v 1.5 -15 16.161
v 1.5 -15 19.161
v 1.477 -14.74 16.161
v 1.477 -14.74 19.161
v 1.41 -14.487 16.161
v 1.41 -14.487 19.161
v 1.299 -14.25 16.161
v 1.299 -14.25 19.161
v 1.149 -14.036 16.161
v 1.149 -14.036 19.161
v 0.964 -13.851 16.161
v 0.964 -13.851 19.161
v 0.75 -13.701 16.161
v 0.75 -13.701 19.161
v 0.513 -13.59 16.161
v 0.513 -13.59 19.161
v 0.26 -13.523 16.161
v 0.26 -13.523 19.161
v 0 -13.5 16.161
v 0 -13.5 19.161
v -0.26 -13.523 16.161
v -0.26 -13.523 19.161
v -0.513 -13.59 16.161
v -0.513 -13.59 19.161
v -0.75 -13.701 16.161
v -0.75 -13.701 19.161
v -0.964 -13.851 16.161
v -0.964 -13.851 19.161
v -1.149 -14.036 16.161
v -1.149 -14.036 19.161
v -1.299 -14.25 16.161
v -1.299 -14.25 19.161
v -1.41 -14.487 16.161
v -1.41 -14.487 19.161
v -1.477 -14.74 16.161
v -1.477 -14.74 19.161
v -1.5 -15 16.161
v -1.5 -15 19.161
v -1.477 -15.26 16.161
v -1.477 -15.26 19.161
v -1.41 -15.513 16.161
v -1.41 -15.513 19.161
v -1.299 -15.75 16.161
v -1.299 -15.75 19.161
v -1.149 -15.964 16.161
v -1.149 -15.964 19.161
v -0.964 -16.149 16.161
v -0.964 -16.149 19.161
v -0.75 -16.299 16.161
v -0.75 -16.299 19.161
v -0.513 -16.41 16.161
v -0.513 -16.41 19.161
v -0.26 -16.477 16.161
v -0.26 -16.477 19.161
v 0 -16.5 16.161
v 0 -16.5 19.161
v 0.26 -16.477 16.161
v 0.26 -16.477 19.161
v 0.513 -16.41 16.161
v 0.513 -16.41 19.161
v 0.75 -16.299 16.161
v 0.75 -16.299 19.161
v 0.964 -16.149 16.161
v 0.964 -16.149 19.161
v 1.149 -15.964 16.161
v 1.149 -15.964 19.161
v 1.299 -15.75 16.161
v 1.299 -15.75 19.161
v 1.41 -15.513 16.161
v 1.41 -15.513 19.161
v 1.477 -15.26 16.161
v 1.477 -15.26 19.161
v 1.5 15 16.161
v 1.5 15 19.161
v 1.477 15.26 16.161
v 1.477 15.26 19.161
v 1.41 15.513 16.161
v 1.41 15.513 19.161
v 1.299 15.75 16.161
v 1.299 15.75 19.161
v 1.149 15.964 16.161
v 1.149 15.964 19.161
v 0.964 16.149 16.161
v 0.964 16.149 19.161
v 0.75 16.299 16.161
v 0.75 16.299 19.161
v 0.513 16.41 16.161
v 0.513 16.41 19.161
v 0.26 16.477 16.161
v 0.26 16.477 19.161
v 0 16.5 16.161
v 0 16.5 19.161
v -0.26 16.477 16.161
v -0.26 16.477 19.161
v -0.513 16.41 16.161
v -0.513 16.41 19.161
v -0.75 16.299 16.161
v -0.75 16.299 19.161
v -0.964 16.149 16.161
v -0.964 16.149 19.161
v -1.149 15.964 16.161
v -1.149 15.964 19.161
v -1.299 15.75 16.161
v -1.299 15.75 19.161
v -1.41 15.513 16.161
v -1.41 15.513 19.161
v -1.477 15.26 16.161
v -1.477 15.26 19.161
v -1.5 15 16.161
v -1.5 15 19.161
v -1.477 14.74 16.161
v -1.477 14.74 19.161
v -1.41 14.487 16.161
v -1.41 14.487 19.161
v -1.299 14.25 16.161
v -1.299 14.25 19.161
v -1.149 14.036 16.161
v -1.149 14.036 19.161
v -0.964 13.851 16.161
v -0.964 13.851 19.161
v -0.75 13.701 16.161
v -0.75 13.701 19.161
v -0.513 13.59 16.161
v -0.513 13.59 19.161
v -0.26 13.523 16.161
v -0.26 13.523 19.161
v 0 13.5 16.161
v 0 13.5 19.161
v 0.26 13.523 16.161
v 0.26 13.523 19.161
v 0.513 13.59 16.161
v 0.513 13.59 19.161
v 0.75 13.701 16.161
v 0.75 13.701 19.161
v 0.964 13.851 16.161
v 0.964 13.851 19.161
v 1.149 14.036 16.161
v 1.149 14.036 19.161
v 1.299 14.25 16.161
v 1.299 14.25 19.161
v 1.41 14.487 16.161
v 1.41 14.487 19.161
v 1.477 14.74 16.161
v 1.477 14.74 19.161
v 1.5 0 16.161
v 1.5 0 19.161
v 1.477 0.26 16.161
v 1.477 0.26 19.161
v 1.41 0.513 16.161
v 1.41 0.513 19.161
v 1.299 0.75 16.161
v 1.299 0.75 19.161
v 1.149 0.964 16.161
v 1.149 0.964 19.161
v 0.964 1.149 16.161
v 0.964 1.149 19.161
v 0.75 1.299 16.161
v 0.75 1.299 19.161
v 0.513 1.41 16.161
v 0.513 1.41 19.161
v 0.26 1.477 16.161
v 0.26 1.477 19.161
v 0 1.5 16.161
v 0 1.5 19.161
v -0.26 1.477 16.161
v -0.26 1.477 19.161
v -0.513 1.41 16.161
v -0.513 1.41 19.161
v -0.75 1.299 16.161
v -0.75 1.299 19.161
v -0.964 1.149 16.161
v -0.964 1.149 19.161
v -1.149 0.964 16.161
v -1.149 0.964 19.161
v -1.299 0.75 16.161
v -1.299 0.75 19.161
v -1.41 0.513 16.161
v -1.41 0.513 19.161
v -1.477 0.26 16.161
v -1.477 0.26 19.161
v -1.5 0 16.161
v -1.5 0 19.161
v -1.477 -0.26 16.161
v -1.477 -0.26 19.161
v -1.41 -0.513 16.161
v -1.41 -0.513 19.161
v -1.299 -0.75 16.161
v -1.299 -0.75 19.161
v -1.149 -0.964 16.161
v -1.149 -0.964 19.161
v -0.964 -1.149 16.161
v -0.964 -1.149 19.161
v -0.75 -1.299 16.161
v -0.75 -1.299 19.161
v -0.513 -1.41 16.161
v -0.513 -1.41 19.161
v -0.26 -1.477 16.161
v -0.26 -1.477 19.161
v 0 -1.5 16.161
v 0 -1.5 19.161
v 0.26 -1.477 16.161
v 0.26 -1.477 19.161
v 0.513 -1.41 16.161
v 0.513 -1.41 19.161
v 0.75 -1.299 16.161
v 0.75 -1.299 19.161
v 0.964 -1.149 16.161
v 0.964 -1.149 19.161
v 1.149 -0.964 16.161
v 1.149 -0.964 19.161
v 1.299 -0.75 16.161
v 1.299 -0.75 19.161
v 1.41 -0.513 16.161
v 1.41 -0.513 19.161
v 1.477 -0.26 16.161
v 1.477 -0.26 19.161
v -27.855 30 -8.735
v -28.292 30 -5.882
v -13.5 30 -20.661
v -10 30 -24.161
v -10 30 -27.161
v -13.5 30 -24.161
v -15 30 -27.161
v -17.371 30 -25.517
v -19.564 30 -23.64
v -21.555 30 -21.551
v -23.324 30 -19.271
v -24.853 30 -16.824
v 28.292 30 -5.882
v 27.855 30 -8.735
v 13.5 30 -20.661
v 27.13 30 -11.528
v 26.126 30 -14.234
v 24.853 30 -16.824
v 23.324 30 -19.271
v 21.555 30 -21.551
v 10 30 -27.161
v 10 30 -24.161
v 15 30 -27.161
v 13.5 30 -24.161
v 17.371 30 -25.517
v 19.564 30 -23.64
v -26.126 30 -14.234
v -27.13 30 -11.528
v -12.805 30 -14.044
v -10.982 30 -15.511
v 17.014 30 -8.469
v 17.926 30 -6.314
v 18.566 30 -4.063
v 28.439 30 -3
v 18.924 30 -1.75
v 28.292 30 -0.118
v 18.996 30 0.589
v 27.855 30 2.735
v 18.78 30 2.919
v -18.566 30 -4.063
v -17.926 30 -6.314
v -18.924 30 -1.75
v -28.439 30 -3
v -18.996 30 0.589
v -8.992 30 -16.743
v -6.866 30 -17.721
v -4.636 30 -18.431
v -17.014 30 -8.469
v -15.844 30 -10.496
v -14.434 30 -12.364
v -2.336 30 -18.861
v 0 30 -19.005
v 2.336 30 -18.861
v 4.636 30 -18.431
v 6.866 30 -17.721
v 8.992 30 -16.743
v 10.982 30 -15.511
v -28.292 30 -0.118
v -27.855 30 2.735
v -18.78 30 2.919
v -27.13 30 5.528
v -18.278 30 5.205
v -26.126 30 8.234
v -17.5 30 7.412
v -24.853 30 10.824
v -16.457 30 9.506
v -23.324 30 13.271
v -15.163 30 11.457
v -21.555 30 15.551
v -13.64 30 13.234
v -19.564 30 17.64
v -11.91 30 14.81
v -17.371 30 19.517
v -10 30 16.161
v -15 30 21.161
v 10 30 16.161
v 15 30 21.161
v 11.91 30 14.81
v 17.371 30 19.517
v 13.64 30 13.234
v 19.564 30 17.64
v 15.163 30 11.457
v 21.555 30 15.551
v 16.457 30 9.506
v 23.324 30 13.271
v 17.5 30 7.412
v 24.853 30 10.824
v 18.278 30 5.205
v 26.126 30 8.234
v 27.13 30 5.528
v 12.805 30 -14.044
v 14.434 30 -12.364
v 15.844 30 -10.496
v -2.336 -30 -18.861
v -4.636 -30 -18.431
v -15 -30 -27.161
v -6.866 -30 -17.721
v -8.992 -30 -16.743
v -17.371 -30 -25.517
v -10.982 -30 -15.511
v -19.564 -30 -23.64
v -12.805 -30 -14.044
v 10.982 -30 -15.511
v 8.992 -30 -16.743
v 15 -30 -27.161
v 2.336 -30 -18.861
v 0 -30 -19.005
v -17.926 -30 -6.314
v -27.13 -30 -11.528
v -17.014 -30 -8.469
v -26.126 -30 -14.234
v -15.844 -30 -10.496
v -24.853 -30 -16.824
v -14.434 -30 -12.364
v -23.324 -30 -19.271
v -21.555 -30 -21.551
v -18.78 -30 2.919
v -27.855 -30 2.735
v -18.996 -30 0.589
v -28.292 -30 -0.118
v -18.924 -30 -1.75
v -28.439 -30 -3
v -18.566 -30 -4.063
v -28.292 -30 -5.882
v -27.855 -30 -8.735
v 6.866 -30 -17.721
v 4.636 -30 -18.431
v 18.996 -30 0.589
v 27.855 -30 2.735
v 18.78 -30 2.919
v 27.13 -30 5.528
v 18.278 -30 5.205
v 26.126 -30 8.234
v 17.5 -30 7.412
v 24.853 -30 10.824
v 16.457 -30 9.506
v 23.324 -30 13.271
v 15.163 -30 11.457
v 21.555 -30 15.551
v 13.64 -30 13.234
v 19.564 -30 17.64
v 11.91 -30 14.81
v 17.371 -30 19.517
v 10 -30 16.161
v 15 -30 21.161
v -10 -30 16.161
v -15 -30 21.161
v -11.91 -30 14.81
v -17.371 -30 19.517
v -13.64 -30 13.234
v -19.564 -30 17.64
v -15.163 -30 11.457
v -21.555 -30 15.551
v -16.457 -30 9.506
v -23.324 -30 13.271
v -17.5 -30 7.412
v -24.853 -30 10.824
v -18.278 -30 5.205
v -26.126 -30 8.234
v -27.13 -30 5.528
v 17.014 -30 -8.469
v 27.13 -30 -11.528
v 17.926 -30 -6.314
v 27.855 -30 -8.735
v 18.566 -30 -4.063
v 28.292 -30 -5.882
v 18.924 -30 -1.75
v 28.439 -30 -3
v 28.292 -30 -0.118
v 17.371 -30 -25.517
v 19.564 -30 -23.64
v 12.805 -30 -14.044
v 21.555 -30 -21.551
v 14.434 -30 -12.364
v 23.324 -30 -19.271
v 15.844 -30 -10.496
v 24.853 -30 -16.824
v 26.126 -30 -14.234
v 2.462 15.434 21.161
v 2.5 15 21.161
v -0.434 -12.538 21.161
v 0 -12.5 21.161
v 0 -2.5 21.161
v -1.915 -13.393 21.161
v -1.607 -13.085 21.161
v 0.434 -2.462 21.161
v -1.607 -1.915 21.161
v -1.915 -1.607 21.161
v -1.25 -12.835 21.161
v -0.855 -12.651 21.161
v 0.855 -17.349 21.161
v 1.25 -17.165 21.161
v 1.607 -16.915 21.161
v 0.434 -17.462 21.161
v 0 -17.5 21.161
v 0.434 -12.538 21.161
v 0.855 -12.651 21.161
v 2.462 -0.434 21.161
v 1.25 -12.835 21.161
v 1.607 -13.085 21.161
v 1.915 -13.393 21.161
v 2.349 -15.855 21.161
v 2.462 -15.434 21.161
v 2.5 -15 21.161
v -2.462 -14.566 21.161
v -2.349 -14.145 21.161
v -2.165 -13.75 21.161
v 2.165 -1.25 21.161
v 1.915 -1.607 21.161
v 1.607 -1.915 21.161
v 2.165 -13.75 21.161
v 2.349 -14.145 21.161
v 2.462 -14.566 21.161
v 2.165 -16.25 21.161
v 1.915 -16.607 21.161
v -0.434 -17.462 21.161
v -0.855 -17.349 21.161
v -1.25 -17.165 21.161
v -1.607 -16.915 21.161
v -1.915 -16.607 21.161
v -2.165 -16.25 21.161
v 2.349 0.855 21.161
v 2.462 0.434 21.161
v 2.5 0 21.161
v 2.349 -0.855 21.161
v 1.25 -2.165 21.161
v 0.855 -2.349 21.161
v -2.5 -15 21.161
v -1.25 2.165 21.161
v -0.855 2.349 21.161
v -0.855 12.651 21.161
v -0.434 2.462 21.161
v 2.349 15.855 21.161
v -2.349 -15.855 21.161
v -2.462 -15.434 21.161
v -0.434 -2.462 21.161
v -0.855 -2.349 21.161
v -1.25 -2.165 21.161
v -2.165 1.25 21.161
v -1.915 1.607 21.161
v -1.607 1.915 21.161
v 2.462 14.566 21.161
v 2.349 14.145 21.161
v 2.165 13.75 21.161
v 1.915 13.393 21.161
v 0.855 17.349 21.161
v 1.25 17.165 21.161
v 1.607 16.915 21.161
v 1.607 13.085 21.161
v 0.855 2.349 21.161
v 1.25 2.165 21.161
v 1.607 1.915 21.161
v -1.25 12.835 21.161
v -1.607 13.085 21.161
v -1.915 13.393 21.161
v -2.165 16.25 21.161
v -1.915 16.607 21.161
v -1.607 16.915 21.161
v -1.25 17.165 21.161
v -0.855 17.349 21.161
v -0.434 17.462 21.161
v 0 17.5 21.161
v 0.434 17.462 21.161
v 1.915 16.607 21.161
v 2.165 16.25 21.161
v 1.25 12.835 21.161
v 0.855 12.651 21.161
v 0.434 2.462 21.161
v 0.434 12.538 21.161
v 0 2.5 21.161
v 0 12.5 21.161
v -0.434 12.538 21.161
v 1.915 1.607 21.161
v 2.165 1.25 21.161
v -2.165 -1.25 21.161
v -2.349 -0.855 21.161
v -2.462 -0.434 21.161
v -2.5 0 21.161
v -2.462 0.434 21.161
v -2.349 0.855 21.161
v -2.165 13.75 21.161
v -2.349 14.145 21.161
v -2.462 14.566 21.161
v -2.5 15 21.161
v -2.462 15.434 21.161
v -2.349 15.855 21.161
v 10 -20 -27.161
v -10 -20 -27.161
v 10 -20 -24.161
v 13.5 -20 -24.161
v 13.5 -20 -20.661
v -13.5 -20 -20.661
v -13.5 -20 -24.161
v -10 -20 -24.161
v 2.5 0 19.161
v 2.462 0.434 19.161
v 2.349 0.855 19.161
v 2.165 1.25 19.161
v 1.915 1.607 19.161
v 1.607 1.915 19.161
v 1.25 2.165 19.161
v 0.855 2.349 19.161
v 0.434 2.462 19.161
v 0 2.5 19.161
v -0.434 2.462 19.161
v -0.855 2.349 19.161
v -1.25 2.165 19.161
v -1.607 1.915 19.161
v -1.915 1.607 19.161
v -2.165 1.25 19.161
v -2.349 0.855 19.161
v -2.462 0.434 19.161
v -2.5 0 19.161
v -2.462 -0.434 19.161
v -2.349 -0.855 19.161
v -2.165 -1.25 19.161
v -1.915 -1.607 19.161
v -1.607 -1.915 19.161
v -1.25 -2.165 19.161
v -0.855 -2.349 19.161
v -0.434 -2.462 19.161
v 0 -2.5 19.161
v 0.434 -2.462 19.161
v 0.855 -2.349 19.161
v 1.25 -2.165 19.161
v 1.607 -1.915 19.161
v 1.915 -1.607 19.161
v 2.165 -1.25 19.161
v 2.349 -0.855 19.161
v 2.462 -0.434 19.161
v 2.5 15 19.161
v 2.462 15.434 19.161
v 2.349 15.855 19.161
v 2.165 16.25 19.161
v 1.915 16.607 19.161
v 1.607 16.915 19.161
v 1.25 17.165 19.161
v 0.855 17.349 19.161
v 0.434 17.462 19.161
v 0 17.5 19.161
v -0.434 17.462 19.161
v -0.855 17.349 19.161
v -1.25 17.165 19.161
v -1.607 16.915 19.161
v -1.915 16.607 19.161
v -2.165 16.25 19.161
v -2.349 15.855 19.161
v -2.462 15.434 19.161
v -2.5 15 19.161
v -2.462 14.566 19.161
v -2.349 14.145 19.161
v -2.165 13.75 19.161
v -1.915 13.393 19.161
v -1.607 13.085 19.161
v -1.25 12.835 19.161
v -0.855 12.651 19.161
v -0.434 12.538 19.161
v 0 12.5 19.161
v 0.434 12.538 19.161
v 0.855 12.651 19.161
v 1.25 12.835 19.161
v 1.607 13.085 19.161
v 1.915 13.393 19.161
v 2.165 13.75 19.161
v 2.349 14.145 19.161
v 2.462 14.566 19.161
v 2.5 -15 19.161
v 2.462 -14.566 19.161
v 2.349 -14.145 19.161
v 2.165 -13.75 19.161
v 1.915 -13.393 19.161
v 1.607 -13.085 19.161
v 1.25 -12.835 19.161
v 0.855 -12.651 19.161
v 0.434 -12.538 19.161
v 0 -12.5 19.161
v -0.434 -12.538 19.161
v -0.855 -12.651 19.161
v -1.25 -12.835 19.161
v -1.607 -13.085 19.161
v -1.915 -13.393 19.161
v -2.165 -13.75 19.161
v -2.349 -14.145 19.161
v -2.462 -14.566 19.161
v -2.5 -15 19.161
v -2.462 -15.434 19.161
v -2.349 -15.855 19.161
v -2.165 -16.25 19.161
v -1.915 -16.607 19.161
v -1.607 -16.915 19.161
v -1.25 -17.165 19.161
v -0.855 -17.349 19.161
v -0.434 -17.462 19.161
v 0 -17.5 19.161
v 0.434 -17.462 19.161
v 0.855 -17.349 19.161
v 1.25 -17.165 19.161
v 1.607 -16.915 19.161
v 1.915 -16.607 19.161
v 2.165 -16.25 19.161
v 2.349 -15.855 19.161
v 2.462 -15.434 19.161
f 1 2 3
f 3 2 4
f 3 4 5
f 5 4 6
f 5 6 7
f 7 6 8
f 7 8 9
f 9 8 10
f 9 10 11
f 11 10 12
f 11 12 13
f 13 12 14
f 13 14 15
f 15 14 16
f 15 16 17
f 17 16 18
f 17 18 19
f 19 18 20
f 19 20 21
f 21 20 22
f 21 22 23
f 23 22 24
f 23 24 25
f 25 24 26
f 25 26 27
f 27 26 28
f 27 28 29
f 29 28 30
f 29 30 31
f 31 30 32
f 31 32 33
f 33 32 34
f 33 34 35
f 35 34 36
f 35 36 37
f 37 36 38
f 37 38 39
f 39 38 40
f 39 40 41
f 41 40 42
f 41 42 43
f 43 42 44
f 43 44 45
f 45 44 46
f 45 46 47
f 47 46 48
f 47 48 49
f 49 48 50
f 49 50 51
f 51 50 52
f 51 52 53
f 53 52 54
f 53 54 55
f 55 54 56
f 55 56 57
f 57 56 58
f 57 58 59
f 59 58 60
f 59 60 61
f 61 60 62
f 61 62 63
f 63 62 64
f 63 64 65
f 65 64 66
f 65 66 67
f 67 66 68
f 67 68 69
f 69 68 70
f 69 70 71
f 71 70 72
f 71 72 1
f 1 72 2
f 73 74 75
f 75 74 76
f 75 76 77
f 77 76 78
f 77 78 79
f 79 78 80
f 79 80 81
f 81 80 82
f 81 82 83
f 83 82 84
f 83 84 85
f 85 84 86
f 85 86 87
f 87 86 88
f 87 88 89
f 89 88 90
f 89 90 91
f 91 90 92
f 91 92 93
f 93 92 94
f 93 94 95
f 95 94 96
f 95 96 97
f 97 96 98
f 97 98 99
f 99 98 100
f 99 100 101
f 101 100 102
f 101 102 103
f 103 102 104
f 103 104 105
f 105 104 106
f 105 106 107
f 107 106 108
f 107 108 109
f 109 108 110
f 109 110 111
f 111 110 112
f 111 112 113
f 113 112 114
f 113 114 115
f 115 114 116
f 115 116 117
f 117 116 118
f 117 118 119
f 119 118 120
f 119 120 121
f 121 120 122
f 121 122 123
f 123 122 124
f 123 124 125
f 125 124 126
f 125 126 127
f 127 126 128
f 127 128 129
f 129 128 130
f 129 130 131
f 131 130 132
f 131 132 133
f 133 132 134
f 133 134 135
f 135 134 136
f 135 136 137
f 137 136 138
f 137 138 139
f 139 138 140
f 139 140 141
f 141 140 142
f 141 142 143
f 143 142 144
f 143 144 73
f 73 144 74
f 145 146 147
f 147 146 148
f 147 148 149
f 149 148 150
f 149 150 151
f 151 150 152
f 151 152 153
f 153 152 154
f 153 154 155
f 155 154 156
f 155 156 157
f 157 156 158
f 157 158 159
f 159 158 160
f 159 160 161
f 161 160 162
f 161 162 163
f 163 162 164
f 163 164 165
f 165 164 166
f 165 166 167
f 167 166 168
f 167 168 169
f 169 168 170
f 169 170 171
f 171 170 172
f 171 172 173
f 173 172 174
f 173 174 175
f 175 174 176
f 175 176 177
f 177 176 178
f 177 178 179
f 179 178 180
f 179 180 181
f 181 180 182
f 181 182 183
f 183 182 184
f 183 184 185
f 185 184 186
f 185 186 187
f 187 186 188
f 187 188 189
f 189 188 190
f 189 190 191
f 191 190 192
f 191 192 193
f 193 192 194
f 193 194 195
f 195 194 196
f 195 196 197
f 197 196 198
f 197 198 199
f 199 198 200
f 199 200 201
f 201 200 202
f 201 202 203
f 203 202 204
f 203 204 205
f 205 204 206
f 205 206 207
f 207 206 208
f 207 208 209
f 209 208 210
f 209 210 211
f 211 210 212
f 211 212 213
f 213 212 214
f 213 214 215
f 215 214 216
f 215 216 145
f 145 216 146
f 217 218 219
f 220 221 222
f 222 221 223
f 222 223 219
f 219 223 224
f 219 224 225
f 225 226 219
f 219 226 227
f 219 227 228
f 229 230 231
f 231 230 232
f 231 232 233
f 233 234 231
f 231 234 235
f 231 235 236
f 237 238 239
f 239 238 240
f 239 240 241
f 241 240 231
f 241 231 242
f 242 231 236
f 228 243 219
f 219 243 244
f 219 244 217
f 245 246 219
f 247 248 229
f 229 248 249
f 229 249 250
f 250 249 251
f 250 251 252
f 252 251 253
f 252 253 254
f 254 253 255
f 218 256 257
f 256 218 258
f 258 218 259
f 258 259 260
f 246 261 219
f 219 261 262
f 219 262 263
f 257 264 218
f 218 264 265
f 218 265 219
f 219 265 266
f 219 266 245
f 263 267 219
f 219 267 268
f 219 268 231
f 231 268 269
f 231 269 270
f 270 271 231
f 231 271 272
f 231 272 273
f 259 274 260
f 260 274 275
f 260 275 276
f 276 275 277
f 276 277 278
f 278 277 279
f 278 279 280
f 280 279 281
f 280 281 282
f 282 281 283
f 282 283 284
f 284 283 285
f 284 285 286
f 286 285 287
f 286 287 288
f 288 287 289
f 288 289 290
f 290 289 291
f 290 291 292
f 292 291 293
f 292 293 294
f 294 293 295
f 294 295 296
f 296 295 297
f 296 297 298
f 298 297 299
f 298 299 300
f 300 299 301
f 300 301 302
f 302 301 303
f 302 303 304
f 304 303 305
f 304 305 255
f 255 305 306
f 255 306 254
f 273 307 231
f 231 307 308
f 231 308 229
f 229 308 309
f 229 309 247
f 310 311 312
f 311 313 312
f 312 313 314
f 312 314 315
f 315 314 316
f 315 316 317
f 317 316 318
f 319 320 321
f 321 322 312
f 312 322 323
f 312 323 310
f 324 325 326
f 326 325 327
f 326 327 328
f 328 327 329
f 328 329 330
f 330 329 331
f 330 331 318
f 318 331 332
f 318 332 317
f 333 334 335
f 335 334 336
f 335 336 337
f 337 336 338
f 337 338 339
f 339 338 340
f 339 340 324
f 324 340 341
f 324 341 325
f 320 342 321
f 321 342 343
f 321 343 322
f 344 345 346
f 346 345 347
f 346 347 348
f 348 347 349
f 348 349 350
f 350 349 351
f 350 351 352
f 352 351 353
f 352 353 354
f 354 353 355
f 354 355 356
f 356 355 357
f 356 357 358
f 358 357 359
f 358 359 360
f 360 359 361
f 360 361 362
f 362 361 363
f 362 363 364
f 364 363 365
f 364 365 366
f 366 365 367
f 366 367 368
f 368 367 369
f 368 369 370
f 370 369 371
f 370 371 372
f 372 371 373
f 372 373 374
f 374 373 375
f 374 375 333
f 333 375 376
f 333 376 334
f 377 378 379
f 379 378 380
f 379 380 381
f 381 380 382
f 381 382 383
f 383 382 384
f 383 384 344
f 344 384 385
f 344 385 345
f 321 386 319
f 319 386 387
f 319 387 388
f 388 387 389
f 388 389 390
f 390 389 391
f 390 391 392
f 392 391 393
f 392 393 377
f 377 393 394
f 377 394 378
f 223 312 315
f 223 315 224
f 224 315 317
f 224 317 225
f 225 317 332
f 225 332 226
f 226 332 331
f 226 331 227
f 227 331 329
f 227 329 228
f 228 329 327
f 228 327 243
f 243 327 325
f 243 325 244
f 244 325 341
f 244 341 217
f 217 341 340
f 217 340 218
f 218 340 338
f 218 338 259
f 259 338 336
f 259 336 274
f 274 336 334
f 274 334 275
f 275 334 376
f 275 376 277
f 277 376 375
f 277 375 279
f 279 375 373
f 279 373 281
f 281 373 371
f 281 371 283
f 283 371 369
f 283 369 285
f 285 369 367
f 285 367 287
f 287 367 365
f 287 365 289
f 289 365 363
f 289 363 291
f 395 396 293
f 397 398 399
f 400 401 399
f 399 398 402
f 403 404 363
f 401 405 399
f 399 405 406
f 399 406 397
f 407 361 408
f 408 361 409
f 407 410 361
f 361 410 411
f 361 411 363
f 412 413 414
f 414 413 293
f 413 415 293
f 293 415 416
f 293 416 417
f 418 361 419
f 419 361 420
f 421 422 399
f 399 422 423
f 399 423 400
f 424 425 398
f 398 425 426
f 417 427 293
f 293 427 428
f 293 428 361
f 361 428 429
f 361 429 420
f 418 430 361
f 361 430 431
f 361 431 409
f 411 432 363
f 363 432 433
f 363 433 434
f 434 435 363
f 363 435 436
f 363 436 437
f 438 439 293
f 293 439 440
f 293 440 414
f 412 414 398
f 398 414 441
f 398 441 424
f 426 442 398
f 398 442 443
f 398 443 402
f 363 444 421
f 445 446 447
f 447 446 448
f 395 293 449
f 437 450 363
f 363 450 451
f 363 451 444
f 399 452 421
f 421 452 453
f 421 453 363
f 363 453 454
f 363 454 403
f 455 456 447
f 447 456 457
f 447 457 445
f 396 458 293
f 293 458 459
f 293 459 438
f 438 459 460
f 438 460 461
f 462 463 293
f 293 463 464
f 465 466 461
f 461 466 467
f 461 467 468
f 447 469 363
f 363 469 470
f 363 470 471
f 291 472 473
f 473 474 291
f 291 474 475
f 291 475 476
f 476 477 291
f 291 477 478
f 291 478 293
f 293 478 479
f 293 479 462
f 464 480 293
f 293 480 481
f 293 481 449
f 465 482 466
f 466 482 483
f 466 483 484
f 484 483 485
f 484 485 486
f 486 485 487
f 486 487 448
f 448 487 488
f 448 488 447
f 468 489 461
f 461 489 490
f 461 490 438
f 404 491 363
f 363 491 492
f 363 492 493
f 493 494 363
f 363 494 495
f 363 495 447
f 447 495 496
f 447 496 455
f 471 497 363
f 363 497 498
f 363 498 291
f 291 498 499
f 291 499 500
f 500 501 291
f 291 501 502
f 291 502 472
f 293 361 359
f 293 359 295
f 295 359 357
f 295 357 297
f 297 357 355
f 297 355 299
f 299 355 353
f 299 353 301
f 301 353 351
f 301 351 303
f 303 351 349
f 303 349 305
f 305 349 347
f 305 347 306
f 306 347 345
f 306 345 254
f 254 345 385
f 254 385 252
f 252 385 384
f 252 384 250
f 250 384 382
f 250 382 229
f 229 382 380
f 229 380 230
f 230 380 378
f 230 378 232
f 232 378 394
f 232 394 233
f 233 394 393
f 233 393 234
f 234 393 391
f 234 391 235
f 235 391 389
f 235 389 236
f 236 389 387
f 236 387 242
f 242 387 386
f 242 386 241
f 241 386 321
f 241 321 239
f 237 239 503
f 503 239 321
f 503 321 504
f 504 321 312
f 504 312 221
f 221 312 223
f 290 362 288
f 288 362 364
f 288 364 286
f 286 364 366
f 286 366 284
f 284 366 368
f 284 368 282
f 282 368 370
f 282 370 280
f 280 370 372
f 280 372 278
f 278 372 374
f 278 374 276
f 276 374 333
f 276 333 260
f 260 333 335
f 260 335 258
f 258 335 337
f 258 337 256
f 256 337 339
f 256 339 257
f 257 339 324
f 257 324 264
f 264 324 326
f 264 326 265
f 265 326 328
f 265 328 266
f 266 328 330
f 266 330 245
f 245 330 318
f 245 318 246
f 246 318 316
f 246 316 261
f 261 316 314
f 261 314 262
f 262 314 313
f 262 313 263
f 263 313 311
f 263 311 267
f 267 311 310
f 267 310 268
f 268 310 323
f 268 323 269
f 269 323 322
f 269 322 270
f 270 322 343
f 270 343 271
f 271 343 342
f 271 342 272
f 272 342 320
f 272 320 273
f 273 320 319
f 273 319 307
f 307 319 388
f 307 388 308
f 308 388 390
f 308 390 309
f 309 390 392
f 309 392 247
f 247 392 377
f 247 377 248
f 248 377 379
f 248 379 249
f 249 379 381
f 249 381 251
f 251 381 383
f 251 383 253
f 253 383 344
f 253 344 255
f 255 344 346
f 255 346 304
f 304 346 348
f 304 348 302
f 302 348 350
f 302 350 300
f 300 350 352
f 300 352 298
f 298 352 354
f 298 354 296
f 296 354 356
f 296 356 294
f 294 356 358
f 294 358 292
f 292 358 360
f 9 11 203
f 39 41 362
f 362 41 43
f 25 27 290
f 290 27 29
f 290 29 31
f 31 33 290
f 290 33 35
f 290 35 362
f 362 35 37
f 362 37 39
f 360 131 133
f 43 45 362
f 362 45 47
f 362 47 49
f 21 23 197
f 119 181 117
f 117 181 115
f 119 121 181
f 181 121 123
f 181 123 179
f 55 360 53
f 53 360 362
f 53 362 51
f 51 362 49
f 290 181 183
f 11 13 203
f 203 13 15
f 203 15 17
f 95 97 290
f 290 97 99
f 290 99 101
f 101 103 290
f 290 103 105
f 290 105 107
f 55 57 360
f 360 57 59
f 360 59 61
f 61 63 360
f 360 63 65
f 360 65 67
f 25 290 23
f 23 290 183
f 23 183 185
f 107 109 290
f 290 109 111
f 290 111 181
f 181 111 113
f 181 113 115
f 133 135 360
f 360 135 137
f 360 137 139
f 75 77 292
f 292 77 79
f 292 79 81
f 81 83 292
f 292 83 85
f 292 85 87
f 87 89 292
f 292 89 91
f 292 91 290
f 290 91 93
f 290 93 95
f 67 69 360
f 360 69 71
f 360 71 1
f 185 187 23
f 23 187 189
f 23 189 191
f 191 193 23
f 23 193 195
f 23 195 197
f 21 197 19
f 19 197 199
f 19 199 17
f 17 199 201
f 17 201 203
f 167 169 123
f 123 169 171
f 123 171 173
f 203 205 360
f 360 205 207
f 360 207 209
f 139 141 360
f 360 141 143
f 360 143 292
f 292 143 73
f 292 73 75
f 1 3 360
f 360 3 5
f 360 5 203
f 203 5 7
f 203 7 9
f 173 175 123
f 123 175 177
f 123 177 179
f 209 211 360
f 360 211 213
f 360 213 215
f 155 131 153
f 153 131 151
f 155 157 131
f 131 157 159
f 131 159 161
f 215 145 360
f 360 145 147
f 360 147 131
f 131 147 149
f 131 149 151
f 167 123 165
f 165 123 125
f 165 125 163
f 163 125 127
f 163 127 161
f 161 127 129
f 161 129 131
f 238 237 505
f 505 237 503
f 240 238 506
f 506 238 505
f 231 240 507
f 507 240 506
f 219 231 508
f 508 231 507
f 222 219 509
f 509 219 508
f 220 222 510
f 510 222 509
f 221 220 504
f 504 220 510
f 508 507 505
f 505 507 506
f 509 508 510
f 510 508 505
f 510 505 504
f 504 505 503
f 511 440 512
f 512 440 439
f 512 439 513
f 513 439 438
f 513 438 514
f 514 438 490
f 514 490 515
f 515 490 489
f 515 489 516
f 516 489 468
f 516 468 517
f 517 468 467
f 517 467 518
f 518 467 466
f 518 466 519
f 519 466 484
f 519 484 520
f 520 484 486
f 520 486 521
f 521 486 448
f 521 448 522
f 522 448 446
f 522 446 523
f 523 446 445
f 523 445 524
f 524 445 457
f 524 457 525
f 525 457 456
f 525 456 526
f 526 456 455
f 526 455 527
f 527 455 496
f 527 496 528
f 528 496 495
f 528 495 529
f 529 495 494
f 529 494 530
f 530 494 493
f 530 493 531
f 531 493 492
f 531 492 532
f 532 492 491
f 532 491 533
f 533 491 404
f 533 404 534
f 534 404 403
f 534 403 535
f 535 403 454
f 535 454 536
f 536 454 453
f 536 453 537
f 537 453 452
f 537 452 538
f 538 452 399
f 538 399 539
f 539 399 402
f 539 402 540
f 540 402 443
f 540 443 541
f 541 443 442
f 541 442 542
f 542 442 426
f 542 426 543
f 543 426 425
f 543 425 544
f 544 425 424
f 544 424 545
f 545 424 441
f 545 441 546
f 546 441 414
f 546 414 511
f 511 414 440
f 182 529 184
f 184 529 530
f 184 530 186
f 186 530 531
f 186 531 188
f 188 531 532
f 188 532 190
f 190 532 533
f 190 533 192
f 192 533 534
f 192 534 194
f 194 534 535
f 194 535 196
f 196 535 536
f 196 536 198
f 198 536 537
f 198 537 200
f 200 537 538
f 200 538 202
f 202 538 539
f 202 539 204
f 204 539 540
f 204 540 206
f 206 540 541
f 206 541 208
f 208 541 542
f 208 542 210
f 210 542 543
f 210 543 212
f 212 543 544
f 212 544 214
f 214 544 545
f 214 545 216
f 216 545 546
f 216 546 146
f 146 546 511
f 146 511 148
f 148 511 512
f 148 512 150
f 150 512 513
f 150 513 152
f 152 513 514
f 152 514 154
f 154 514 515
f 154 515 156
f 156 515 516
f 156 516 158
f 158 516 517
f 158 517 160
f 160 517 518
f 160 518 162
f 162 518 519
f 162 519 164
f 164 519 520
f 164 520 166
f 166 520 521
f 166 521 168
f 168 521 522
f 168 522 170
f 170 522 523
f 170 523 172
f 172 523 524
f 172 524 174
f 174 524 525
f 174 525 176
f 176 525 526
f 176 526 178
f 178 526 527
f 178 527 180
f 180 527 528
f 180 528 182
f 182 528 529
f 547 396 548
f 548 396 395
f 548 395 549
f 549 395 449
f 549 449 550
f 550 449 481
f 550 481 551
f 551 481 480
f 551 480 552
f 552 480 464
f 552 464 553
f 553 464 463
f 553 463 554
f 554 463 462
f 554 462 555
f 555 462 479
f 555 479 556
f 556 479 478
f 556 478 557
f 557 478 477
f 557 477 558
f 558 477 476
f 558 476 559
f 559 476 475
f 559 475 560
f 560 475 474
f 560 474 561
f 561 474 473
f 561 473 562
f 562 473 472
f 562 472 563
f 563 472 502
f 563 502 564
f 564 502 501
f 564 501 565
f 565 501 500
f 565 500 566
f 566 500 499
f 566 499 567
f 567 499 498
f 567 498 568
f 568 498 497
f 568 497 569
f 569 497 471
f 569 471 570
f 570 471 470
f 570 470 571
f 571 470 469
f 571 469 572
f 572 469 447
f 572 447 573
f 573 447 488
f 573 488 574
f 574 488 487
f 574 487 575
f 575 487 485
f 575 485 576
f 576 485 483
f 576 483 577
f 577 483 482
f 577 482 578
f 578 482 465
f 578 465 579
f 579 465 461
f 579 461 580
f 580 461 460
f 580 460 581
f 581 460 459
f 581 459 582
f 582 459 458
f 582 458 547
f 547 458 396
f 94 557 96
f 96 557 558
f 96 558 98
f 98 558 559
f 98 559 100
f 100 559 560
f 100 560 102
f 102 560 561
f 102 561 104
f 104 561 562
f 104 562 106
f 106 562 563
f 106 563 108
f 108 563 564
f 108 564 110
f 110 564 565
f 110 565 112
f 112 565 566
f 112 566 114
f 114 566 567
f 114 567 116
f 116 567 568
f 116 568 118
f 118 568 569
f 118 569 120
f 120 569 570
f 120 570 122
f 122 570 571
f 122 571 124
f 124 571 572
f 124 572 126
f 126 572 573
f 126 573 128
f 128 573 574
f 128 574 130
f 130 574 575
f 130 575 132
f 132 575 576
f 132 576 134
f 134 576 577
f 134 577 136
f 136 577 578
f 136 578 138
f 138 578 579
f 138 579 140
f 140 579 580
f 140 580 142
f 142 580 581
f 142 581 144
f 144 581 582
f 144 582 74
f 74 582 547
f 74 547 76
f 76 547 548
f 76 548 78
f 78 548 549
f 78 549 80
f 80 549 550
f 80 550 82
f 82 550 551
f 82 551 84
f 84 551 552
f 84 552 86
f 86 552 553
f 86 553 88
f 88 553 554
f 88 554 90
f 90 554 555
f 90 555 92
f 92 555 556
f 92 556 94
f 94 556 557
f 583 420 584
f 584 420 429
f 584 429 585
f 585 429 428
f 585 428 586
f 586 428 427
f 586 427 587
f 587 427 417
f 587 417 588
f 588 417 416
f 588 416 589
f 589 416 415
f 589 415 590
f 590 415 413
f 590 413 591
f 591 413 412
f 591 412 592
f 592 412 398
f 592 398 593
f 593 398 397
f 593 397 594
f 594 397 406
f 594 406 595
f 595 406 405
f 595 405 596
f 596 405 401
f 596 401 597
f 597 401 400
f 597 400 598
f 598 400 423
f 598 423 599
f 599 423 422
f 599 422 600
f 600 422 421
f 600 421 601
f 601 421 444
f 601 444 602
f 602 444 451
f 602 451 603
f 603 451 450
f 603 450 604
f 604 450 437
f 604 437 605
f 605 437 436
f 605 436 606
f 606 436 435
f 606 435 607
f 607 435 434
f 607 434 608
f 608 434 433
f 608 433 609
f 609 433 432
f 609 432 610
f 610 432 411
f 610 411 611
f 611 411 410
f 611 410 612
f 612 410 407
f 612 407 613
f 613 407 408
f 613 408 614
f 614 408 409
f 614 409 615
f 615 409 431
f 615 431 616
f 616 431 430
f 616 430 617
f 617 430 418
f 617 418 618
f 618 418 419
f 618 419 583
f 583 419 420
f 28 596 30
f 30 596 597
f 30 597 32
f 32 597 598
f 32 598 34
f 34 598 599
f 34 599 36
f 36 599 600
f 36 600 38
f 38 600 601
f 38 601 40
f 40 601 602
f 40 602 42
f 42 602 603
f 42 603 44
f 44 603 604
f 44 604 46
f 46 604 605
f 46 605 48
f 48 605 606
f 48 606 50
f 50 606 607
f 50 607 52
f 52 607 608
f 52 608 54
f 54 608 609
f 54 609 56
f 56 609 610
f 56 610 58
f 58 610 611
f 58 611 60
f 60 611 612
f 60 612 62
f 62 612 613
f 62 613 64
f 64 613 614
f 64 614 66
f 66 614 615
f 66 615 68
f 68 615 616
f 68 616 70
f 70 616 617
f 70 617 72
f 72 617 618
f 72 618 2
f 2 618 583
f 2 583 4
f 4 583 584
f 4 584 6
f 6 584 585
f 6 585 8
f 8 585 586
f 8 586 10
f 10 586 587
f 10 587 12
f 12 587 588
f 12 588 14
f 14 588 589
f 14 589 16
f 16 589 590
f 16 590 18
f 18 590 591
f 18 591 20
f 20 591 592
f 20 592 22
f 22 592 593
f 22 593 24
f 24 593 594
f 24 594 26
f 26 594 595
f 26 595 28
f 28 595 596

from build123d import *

# Parameters (mm, degrees)
BOSS_EXTRUDE1_DEPTH = 30
CUT_EXTRUDE1_DEPTH  = 50
SKETCH5_R           = 1.5
CUT_EXTRUDE2_DEPTH  = 5
SKETCH5_3_R         = 2.5
SKETCH5_3_R_2       = 1.5
CUT_EXTRUDE3_DEPTH  = 2
LPATTERN1_COUNT     = 2
LPATTERN1_PITCH     = 15
LPATTERN1_COL_COUNT = 2
LPATTERN1_COL_PITCH = 15


with BuildPart() as part:
    # Sketch1 → Boss-Extrude1 (new body, symmetric)
    with BuildSketch(Plane(origin=(0, 0, 0), x_dir=(1, 0, 0), z_dir=(0, 1, 0))):
        with BuildLine():
            Line((-15, -21.161374477), (15, -21.161374477))
            ThreePointArc((15, -21.161374477), (28.43891729, 3), (15, 27.161374477))
            Line((15, 27.161374477), (-15, 27.161374477))
            ThreePointArc((-15, 27.161374477), (-28.43891729, 3), (-15, -21.161374477))
        make_face()
        with BuildLine():
            Line((-10, -16.161374477), (10, -16.161374477))
            ThreePointArc((10, -16.161374477), (0, 19.005), (-10, -16.161374477))
        make_face(mode=Mode.SUBTRACT)
    extrude(amount=BOSS_EXTRUDE1_DEPTH, both=True)

    # Sketch4 → Cut-Extrude1 (cut)
    with BuildSketch(Plane(origin=(0, 30, 0), x_dir=(1, 0, 0), z_dir=(0, 1, 0))):
        Polygon((-10, 27.161374477), (-10, 24.161374477), (-13.5, 24.161374477), (-13.5, 20.661374477), (13.5, 20.661374477), (13.5, 24.161374477), (10, 24.161374477), (10, 27.161374477), align=None)
    extrude(amount=-CUT_EXTRUDE1_DEPTH, mode=Mode.SUBTRACT)

    # Sketch5 → Cut-Extrude2 (cut)
    with BuildSketch(Plane.XY.offset(21.161374477)):
        Circle(SKETCH5_R)
    cut_extrude2 = extrude(amount=-CUT_EXTRUDE2_DEPTH, mode=Mode.SUBTRACT)

    # Sketch5<3> → Cut-Extrude3 (cut)
    with BuildSketch(Plane.XY.offset(21.161374477)):
        Circle(SKETCH5_3_R)
        Circle(SKETCH5_3_R_2, mode=Mode.SUBTRACT)
    cut_extrude3 = extrude(amount=-CUT_EXTRUDE3_DEPTH, mode=Mode.SUBTRACT)

    # LPattern1: Cut-Extrude2, Cut-Extrude3 ×2
    with Locations(*[(0, -i * LPATTERN1_PITCH, 0) for i in range(1, LPATTERN1_COUNT)]):
        add(cut_extrude2, mode=Mode.SUBTRACT)
        add(cut_extrude3, mode=Mode.SUBTRACT)

    # LPattern1 col: Cut-Extrude2, Cut-Extrude3 ×2
    with Locations(*[(0, i * LPATTERN1_COL_PITCH, 0) for i in range(1, LPATTERN1_COL_COUNT)]):
        add(cut_extrude2, mode=Mode.SUBTRACT)
        add(cut_extrude3, mode=Mode.SUBTRACT)


solid = part.part
